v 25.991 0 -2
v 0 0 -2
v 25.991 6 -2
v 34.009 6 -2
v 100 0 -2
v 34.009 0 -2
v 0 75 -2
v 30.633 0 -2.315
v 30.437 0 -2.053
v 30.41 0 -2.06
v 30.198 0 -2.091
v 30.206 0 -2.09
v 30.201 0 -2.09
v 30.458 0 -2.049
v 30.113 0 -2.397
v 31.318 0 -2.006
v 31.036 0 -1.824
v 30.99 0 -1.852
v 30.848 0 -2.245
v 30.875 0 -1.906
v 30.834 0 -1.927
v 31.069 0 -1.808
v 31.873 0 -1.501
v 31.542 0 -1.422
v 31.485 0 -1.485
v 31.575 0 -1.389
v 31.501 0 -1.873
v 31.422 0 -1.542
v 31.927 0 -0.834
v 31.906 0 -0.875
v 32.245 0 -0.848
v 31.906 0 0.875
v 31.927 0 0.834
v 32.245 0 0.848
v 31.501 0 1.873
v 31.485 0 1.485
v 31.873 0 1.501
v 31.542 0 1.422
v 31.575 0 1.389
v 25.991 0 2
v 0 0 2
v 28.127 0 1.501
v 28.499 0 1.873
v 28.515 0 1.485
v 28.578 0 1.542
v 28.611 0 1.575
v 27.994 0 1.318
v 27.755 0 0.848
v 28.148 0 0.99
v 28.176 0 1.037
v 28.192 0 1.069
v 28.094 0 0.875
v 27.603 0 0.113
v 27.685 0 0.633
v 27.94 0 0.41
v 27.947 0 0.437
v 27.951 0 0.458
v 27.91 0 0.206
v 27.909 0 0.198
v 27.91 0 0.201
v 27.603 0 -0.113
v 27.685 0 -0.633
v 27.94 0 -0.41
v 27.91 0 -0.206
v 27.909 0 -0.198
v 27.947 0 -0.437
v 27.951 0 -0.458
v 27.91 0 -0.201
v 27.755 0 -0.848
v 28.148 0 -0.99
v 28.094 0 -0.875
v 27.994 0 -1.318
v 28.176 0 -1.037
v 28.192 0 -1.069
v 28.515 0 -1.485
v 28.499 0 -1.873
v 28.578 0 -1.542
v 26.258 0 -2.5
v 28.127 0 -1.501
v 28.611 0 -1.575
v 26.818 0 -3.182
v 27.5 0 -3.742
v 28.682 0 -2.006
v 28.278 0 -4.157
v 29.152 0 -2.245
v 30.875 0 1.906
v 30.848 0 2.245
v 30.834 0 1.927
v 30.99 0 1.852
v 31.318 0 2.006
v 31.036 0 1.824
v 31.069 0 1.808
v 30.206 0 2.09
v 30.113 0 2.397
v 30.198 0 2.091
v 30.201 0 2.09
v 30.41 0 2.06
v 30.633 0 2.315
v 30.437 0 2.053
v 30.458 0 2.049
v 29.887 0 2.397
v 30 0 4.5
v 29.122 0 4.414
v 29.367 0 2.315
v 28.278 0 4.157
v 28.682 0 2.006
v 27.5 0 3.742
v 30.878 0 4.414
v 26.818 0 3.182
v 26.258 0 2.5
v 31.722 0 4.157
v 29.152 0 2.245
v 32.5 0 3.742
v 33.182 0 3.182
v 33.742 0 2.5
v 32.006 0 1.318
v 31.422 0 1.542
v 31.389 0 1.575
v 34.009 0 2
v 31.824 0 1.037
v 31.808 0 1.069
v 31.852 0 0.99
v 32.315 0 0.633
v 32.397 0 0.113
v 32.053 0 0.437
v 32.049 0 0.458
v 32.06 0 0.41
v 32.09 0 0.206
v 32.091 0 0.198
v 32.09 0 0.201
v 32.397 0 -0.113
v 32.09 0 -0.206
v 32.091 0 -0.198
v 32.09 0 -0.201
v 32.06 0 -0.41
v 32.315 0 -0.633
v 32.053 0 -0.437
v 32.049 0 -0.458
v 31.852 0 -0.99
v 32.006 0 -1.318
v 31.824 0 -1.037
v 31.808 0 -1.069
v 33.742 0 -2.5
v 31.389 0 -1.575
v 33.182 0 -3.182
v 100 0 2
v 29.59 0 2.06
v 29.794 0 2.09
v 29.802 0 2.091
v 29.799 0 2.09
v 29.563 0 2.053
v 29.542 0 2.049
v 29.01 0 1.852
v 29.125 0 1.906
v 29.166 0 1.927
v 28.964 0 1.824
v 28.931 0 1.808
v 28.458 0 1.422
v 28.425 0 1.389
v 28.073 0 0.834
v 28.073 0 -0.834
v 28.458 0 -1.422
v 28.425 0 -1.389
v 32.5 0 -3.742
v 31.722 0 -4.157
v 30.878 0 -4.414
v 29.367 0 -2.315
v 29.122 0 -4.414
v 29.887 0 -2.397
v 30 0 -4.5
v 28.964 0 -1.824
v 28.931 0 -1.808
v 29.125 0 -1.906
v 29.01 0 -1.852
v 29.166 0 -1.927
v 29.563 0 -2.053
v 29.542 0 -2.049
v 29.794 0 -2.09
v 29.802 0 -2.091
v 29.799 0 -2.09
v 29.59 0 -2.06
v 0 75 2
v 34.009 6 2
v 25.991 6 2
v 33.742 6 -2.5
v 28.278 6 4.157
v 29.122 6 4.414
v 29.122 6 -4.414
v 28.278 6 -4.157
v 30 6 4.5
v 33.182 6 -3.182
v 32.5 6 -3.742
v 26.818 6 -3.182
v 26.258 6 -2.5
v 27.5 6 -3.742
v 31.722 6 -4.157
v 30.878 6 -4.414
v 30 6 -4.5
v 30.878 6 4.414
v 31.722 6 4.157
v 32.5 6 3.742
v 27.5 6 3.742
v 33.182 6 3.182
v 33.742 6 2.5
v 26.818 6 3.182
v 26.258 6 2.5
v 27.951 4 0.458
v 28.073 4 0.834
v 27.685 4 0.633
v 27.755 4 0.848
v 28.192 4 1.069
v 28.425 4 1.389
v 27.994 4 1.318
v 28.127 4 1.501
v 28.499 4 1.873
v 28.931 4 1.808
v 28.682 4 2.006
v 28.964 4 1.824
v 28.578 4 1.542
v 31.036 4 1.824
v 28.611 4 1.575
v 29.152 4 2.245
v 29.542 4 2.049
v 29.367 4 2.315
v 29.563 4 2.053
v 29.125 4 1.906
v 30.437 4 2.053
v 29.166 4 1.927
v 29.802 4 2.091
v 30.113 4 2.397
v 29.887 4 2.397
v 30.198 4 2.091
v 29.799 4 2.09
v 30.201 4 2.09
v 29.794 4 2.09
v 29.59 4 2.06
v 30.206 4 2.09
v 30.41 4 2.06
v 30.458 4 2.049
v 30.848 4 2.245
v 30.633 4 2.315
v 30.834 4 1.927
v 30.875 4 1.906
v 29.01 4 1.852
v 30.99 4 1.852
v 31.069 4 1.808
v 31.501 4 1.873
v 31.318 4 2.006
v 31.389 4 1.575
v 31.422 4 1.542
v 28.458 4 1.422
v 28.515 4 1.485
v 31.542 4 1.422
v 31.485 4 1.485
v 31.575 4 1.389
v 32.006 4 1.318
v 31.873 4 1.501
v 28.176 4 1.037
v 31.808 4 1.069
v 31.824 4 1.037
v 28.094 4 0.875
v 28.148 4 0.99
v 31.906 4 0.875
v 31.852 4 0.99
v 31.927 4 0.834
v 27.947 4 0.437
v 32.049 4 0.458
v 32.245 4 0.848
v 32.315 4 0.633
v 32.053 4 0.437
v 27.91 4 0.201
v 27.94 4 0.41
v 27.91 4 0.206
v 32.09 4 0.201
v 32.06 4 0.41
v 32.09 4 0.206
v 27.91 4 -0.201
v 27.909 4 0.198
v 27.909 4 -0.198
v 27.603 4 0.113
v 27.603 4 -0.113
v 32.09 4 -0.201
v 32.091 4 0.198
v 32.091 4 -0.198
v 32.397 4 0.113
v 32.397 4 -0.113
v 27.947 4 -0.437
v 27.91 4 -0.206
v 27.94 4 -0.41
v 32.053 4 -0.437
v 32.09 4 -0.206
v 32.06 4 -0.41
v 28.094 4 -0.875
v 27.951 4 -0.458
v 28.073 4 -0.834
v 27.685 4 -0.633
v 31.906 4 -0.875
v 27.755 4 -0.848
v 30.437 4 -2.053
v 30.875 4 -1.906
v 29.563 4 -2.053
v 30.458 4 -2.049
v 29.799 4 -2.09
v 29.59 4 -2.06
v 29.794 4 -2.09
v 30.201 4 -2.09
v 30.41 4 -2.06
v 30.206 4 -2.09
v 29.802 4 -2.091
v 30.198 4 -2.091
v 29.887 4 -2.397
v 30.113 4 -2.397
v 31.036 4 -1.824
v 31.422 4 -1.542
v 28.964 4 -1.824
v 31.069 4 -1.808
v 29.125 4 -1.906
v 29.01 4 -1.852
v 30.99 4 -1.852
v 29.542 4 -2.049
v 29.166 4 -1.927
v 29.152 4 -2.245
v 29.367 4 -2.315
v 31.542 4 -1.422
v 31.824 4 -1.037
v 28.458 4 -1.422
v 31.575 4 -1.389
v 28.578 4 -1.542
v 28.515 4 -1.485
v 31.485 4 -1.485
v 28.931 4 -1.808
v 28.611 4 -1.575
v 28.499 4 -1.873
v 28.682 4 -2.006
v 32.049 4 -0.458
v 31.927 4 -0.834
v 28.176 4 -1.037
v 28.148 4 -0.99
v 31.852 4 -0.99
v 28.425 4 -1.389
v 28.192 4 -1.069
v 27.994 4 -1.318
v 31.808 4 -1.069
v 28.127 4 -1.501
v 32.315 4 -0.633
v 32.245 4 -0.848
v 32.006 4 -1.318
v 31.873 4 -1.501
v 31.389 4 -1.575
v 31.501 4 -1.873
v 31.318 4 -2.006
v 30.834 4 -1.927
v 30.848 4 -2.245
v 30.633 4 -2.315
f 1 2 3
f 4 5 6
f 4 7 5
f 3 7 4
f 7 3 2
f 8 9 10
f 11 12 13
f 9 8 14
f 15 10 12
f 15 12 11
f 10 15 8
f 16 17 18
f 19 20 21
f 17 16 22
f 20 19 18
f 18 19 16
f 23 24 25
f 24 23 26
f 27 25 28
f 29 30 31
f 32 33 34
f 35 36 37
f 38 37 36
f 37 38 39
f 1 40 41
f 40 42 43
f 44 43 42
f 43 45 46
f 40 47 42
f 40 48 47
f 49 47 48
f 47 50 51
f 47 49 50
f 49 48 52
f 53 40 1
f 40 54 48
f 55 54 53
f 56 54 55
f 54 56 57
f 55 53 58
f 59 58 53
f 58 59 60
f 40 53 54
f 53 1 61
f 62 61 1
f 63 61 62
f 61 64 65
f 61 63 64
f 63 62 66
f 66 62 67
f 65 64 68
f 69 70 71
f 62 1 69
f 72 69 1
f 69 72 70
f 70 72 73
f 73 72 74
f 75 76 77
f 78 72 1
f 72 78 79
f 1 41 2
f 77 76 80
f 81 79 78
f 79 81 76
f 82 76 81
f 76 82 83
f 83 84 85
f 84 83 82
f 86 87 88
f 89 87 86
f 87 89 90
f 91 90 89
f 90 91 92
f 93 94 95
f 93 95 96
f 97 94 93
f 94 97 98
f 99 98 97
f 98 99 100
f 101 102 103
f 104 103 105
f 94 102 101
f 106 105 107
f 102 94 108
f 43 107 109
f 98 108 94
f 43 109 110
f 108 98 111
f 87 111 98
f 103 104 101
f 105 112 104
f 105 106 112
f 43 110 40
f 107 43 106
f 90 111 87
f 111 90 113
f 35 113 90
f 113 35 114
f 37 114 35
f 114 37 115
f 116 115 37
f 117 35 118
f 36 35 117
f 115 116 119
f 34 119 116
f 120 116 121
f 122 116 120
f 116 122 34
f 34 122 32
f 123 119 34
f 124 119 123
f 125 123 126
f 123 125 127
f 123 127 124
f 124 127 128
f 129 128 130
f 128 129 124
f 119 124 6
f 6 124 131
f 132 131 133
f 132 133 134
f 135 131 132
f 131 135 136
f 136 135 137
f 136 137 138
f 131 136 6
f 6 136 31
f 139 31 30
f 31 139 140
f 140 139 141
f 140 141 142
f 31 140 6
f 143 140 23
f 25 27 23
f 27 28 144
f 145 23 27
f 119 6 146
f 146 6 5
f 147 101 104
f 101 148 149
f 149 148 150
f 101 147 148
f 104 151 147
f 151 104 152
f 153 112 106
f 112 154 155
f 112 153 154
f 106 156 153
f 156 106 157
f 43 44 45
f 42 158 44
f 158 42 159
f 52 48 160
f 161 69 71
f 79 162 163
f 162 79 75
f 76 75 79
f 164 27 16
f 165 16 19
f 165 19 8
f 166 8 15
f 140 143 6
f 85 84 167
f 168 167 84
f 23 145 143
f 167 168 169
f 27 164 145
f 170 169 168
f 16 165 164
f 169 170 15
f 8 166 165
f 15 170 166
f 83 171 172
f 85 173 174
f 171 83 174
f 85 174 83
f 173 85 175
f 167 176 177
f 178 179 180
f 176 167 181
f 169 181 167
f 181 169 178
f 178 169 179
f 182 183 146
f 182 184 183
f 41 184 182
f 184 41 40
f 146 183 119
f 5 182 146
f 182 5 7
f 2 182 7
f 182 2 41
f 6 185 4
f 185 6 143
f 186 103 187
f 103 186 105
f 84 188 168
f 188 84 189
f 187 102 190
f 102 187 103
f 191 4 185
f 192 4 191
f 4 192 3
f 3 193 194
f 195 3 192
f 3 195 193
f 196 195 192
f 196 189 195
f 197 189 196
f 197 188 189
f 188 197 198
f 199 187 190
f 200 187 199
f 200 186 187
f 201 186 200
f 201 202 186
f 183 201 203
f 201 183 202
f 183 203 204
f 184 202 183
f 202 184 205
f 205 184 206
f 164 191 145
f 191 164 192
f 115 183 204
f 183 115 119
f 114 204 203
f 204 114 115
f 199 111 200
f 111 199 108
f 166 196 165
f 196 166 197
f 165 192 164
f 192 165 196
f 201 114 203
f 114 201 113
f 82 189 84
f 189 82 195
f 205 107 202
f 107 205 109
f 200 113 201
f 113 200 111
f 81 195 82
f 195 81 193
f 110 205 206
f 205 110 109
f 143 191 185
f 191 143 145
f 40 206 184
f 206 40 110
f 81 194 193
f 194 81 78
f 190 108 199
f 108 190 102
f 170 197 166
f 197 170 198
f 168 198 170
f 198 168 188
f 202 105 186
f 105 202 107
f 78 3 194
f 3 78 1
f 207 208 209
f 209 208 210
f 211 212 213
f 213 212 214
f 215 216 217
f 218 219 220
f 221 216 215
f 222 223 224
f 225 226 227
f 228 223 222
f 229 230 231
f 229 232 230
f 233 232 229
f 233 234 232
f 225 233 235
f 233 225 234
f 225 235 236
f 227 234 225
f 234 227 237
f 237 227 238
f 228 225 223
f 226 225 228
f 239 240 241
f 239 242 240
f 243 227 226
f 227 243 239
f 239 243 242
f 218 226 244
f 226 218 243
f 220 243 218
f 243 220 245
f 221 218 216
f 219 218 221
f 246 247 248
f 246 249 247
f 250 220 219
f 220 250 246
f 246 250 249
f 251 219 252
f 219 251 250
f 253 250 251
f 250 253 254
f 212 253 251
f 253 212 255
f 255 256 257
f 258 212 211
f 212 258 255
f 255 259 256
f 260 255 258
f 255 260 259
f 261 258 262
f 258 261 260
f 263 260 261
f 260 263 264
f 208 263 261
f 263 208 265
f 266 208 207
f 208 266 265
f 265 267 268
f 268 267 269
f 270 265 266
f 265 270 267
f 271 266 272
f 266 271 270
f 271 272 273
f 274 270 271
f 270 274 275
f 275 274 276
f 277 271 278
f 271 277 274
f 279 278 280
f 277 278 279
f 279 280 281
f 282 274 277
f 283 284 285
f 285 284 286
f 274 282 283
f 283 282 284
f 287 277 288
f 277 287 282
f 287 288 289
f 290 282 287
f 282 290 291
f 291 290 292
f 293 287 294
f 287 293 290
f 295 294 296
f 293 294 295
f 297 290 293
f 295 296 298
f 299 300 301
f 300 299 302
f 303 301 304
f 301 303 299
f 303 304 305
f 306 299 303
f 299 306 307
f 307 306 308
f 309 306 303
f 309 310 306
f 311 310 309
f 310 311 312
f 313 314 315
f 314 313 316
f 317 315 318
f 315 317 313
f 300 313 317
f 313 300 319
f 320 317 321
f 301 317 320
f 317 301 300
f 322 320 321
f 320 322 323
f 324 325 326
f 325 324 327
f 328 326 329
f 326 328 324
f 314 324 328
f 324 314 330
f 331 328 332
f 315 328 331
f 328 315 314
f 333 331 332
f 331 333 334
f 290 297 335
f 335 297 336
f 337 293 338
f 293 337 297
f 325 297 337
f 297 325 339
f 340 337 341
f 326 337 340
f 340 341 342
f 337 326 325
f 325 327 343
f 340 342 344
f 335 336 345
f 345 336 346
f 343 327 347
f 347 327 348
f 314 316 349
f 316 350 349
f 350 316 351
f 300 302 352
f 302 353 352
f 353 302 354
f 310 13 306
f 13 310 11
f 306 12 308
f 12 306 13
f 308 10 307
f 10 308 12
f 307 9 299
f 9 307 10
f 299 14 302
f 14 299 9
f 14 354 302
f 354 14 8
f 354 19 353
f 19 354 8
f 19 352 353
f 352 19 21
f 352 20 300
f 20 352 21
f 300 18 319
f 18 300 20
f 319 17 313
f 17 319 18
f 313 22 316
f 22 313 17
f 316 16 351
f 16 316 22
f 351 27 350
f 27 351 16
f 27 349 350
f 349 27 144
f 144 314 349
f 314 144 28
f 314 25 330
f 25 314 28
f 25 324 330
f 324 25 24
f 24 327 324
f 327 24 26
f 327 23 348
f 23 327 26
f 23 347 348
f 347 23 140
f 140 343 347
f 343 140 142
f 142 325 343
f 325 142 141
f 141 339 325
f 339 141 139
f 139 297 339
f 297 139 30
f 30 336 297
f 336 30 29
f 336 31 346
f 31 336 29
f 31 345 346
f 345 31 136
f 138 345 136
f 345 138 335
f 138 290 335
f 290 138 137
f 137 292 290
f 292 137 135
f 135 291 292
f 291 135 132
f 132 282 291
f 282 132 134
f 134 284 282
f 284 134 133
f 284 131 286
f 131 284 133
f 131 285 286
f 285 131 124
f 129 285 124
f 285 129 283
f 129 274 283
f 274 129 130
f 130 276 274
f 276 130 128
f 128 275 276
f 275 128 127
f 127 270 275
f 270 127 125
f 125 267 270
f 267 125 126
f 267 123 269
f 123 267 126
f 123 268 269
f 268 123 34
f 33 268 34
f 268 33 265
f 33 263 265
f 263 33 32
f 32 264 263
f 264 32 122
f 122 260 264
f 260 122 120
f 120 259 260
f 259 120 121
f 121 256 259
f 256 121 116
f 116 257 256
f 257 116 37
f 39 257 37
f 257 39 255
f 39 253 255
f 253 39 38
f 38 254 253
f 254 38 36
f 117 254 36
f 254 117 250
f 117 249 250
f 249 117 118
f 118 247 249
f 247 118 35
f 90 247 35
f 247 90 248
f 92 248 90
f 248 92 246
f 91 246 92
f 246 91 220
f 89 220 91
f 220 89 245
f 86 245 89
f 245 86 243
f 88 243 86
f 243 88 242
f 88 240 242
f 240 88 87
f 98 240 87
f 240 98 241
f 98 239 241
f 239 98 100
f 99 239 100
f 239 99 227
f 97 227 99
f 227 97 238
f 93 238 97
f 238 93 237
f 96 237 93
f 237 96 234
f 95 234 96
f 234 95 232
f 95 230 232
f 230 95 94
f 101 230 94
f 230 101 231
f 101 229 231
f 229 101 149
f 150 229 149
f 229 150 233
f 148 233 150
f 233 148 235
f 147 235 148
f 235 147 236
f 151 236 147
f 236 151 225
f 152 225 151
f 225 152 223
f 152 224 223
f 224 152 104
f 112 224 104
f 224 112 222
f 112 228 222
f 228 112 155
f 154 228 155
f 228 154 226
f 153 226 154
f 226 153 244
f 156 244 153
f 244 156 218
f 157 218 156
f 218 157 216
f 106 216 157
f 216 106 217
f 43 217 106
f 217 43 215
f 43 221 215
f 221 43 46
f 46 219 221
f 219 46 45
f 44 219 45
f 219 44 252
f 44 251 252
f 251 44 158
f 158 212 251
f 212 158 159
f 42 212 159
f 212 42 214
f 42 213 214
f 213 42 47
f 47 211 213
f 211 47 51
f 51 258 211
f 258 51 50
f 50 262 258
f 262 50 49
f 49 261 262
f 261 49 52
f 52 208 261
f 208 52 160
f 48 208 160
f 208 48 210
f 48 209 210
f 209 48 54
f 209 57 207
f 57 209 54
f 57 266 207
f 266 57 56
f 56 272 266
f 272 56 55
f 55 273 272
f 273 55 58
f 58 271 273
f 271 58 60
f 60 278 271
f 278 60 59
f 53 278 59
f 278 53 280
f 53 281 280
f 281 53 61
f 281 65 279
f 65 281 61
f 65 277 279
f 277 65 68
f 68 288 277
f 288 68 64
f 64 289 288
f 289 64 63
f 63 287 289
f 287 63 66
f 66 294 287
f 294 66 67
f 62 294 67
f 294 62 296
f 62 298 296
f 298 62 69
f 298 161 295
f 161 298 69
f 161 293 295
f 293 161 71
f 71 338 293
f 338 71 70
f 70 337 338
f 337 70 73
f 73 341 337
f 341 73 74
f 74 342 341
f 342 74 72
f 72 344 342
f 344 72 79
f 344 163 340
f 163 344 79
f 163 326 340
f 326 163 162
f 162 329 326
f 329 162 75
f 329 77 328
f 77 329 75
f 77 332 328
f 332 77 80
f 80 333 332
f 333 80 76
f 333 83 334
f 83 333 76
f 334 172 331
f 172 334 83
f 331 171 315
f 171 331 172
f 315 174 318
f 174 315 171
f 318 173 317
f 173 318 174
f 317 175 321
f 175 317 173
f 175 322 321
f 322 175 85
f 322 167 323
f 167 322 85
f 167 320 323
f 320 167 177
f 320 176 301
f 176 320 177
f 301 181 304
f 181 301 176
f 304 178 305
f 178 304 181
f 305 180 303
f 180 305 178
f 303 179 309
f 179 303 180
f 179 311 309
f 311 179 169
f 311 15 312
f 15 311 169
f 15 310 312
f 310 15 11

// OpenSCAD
// =============================================================
// Triangular canard fin, servo actuated
// - Simple triangular planform
// - Toothed socket bored into the root edge that presses directly
//   onto the servo's 20-tooth output spline, the same way a horn
//   does: 20 printed ridges mesh with the spline teeth
// =============================================================
// Coordinate system:
//   X = chordwise  (LE at +X, TE at X=0)
//   Y = spanwise   (root at Y=0, tip at +Y)
//   Z = thickness  (symmetric about Z=0)
// =============================================================

/* [Planform] */
fin_height    = 75;    // root-to-tip span (mm)
fin_width     = 100;     // root chord (mm)
tip_offset    = 0;     // X position of the tip point (mm from TE)
fin_thickness = 4;      // overall fin thickness (mm)

/* [Servo spline socket] */
// Toothed socket bored into the root edge along the hinge axis.
// The fin presses onto the servo's output spline like a horn:
// the socket is the negative of the spline, ridges and all.
spline_axis_x   = 30;     // chordwise position of servo shaft axis (mm from TE)
spline_teeth    = 20;     // number of teeth on the servo spline
spline_d        = 4.8;    // spline outer (tooth tip) diameter (mm)
spline_root_d   = 4.2;    // spline root diameter, between teeth (mm)
spline_fit      = 0;      // bore adjustment: negative = tighter press fit (mm)
spline_depth    = 4;      // socket depth = spline engagement length (mm)
tooth_tip_frac  = 0.15;   // tooth tip half-width as fraction of tooth pitch
tooth_base_frac = 0.30;   // tooth base half-width as fraction of tooth pitch

/* [Spline boss] */
// The 4.8 mm socket is wider than the fin is thick, so a round
// boss (like a horn hub) reinforces the bore at the root edge.
boss_d          = 9;      // boss outer diameter (mm)
boss_length     = 6;      // boss length up from the root edge (mm)

$fn = 32;
eps = 0.01;

// =============================================================
// Triangular planform (2D, XY plane)
// =============================================================
module fin_planform_2d() {
    polygon([
        [0, 0],              // trailing edge, root
        [fin_width, 0],      // leading edge, root
        [tip_offset, fin_height]  // tip
    ]);
}

// =============================================================
// Spline boss - hub-like cylinder on the hinge axis at the root
// edge, thick enough to wrap the spline socket on all sides
// =============================================================
module spline_boss() {
    translate([spline_axis_x, 0, 0])
        rotate([-90, 0, 0])
            cylinder(d = boss_d, h = boss_length);
}

// =============================================================
// 2D cross-section of the male spline: a root circle with 20
// trapezoidal teeth out to the tip diameter. Subtracting this
// leaves matching ridges inside the socket bore.
// =============================================================
module spline_profile_2d() {
    r_tip  = (spline_d + spline_fit) / 2;
    r_root = (spline_root_d + spline_fit) / 2;
    pitch  = 360 / spline_teeth;
    union() {
        circle(r = r_root, $fn = 64);
        polygon([
            for (i = [0 : spline_teeth - 1],
                 p = [[-tooth_base_frac, r_root],
                      [-tooth_tip_frac,  r_tip],
                      [ tooth_tip_frac,  r_tip],
                      [ tooth_base_frac, r_root]])
                let (a = (i + p[0]) * pitch)
                    [p[1] * cos(a), p[1] * sin(a)]
        ]);
    }
}

// =============================================================
// Spline socket - toothed bore entering the root edge along the
// hinge axis; the servo spline presses in and the ridges key it
// =============================================================
module spline_socket() {
    translate([spline_axis_x, spline_depth, 0])
        rotate([90, 0, 0])
            linear_extrude(height = spline_depth + eps)
                spline_profile_2d();
}

// =============================================================
// Canard fin
// =============================================================
module canard() {
    difference() {
        union() {
            linear_extrude(height = fin_thickness, center = true)
                fin_planform_2d();
            spline_boss();
        }
        spline_socket();
    }
}

// =============================================================
// Render
// =============================================================
canard();
